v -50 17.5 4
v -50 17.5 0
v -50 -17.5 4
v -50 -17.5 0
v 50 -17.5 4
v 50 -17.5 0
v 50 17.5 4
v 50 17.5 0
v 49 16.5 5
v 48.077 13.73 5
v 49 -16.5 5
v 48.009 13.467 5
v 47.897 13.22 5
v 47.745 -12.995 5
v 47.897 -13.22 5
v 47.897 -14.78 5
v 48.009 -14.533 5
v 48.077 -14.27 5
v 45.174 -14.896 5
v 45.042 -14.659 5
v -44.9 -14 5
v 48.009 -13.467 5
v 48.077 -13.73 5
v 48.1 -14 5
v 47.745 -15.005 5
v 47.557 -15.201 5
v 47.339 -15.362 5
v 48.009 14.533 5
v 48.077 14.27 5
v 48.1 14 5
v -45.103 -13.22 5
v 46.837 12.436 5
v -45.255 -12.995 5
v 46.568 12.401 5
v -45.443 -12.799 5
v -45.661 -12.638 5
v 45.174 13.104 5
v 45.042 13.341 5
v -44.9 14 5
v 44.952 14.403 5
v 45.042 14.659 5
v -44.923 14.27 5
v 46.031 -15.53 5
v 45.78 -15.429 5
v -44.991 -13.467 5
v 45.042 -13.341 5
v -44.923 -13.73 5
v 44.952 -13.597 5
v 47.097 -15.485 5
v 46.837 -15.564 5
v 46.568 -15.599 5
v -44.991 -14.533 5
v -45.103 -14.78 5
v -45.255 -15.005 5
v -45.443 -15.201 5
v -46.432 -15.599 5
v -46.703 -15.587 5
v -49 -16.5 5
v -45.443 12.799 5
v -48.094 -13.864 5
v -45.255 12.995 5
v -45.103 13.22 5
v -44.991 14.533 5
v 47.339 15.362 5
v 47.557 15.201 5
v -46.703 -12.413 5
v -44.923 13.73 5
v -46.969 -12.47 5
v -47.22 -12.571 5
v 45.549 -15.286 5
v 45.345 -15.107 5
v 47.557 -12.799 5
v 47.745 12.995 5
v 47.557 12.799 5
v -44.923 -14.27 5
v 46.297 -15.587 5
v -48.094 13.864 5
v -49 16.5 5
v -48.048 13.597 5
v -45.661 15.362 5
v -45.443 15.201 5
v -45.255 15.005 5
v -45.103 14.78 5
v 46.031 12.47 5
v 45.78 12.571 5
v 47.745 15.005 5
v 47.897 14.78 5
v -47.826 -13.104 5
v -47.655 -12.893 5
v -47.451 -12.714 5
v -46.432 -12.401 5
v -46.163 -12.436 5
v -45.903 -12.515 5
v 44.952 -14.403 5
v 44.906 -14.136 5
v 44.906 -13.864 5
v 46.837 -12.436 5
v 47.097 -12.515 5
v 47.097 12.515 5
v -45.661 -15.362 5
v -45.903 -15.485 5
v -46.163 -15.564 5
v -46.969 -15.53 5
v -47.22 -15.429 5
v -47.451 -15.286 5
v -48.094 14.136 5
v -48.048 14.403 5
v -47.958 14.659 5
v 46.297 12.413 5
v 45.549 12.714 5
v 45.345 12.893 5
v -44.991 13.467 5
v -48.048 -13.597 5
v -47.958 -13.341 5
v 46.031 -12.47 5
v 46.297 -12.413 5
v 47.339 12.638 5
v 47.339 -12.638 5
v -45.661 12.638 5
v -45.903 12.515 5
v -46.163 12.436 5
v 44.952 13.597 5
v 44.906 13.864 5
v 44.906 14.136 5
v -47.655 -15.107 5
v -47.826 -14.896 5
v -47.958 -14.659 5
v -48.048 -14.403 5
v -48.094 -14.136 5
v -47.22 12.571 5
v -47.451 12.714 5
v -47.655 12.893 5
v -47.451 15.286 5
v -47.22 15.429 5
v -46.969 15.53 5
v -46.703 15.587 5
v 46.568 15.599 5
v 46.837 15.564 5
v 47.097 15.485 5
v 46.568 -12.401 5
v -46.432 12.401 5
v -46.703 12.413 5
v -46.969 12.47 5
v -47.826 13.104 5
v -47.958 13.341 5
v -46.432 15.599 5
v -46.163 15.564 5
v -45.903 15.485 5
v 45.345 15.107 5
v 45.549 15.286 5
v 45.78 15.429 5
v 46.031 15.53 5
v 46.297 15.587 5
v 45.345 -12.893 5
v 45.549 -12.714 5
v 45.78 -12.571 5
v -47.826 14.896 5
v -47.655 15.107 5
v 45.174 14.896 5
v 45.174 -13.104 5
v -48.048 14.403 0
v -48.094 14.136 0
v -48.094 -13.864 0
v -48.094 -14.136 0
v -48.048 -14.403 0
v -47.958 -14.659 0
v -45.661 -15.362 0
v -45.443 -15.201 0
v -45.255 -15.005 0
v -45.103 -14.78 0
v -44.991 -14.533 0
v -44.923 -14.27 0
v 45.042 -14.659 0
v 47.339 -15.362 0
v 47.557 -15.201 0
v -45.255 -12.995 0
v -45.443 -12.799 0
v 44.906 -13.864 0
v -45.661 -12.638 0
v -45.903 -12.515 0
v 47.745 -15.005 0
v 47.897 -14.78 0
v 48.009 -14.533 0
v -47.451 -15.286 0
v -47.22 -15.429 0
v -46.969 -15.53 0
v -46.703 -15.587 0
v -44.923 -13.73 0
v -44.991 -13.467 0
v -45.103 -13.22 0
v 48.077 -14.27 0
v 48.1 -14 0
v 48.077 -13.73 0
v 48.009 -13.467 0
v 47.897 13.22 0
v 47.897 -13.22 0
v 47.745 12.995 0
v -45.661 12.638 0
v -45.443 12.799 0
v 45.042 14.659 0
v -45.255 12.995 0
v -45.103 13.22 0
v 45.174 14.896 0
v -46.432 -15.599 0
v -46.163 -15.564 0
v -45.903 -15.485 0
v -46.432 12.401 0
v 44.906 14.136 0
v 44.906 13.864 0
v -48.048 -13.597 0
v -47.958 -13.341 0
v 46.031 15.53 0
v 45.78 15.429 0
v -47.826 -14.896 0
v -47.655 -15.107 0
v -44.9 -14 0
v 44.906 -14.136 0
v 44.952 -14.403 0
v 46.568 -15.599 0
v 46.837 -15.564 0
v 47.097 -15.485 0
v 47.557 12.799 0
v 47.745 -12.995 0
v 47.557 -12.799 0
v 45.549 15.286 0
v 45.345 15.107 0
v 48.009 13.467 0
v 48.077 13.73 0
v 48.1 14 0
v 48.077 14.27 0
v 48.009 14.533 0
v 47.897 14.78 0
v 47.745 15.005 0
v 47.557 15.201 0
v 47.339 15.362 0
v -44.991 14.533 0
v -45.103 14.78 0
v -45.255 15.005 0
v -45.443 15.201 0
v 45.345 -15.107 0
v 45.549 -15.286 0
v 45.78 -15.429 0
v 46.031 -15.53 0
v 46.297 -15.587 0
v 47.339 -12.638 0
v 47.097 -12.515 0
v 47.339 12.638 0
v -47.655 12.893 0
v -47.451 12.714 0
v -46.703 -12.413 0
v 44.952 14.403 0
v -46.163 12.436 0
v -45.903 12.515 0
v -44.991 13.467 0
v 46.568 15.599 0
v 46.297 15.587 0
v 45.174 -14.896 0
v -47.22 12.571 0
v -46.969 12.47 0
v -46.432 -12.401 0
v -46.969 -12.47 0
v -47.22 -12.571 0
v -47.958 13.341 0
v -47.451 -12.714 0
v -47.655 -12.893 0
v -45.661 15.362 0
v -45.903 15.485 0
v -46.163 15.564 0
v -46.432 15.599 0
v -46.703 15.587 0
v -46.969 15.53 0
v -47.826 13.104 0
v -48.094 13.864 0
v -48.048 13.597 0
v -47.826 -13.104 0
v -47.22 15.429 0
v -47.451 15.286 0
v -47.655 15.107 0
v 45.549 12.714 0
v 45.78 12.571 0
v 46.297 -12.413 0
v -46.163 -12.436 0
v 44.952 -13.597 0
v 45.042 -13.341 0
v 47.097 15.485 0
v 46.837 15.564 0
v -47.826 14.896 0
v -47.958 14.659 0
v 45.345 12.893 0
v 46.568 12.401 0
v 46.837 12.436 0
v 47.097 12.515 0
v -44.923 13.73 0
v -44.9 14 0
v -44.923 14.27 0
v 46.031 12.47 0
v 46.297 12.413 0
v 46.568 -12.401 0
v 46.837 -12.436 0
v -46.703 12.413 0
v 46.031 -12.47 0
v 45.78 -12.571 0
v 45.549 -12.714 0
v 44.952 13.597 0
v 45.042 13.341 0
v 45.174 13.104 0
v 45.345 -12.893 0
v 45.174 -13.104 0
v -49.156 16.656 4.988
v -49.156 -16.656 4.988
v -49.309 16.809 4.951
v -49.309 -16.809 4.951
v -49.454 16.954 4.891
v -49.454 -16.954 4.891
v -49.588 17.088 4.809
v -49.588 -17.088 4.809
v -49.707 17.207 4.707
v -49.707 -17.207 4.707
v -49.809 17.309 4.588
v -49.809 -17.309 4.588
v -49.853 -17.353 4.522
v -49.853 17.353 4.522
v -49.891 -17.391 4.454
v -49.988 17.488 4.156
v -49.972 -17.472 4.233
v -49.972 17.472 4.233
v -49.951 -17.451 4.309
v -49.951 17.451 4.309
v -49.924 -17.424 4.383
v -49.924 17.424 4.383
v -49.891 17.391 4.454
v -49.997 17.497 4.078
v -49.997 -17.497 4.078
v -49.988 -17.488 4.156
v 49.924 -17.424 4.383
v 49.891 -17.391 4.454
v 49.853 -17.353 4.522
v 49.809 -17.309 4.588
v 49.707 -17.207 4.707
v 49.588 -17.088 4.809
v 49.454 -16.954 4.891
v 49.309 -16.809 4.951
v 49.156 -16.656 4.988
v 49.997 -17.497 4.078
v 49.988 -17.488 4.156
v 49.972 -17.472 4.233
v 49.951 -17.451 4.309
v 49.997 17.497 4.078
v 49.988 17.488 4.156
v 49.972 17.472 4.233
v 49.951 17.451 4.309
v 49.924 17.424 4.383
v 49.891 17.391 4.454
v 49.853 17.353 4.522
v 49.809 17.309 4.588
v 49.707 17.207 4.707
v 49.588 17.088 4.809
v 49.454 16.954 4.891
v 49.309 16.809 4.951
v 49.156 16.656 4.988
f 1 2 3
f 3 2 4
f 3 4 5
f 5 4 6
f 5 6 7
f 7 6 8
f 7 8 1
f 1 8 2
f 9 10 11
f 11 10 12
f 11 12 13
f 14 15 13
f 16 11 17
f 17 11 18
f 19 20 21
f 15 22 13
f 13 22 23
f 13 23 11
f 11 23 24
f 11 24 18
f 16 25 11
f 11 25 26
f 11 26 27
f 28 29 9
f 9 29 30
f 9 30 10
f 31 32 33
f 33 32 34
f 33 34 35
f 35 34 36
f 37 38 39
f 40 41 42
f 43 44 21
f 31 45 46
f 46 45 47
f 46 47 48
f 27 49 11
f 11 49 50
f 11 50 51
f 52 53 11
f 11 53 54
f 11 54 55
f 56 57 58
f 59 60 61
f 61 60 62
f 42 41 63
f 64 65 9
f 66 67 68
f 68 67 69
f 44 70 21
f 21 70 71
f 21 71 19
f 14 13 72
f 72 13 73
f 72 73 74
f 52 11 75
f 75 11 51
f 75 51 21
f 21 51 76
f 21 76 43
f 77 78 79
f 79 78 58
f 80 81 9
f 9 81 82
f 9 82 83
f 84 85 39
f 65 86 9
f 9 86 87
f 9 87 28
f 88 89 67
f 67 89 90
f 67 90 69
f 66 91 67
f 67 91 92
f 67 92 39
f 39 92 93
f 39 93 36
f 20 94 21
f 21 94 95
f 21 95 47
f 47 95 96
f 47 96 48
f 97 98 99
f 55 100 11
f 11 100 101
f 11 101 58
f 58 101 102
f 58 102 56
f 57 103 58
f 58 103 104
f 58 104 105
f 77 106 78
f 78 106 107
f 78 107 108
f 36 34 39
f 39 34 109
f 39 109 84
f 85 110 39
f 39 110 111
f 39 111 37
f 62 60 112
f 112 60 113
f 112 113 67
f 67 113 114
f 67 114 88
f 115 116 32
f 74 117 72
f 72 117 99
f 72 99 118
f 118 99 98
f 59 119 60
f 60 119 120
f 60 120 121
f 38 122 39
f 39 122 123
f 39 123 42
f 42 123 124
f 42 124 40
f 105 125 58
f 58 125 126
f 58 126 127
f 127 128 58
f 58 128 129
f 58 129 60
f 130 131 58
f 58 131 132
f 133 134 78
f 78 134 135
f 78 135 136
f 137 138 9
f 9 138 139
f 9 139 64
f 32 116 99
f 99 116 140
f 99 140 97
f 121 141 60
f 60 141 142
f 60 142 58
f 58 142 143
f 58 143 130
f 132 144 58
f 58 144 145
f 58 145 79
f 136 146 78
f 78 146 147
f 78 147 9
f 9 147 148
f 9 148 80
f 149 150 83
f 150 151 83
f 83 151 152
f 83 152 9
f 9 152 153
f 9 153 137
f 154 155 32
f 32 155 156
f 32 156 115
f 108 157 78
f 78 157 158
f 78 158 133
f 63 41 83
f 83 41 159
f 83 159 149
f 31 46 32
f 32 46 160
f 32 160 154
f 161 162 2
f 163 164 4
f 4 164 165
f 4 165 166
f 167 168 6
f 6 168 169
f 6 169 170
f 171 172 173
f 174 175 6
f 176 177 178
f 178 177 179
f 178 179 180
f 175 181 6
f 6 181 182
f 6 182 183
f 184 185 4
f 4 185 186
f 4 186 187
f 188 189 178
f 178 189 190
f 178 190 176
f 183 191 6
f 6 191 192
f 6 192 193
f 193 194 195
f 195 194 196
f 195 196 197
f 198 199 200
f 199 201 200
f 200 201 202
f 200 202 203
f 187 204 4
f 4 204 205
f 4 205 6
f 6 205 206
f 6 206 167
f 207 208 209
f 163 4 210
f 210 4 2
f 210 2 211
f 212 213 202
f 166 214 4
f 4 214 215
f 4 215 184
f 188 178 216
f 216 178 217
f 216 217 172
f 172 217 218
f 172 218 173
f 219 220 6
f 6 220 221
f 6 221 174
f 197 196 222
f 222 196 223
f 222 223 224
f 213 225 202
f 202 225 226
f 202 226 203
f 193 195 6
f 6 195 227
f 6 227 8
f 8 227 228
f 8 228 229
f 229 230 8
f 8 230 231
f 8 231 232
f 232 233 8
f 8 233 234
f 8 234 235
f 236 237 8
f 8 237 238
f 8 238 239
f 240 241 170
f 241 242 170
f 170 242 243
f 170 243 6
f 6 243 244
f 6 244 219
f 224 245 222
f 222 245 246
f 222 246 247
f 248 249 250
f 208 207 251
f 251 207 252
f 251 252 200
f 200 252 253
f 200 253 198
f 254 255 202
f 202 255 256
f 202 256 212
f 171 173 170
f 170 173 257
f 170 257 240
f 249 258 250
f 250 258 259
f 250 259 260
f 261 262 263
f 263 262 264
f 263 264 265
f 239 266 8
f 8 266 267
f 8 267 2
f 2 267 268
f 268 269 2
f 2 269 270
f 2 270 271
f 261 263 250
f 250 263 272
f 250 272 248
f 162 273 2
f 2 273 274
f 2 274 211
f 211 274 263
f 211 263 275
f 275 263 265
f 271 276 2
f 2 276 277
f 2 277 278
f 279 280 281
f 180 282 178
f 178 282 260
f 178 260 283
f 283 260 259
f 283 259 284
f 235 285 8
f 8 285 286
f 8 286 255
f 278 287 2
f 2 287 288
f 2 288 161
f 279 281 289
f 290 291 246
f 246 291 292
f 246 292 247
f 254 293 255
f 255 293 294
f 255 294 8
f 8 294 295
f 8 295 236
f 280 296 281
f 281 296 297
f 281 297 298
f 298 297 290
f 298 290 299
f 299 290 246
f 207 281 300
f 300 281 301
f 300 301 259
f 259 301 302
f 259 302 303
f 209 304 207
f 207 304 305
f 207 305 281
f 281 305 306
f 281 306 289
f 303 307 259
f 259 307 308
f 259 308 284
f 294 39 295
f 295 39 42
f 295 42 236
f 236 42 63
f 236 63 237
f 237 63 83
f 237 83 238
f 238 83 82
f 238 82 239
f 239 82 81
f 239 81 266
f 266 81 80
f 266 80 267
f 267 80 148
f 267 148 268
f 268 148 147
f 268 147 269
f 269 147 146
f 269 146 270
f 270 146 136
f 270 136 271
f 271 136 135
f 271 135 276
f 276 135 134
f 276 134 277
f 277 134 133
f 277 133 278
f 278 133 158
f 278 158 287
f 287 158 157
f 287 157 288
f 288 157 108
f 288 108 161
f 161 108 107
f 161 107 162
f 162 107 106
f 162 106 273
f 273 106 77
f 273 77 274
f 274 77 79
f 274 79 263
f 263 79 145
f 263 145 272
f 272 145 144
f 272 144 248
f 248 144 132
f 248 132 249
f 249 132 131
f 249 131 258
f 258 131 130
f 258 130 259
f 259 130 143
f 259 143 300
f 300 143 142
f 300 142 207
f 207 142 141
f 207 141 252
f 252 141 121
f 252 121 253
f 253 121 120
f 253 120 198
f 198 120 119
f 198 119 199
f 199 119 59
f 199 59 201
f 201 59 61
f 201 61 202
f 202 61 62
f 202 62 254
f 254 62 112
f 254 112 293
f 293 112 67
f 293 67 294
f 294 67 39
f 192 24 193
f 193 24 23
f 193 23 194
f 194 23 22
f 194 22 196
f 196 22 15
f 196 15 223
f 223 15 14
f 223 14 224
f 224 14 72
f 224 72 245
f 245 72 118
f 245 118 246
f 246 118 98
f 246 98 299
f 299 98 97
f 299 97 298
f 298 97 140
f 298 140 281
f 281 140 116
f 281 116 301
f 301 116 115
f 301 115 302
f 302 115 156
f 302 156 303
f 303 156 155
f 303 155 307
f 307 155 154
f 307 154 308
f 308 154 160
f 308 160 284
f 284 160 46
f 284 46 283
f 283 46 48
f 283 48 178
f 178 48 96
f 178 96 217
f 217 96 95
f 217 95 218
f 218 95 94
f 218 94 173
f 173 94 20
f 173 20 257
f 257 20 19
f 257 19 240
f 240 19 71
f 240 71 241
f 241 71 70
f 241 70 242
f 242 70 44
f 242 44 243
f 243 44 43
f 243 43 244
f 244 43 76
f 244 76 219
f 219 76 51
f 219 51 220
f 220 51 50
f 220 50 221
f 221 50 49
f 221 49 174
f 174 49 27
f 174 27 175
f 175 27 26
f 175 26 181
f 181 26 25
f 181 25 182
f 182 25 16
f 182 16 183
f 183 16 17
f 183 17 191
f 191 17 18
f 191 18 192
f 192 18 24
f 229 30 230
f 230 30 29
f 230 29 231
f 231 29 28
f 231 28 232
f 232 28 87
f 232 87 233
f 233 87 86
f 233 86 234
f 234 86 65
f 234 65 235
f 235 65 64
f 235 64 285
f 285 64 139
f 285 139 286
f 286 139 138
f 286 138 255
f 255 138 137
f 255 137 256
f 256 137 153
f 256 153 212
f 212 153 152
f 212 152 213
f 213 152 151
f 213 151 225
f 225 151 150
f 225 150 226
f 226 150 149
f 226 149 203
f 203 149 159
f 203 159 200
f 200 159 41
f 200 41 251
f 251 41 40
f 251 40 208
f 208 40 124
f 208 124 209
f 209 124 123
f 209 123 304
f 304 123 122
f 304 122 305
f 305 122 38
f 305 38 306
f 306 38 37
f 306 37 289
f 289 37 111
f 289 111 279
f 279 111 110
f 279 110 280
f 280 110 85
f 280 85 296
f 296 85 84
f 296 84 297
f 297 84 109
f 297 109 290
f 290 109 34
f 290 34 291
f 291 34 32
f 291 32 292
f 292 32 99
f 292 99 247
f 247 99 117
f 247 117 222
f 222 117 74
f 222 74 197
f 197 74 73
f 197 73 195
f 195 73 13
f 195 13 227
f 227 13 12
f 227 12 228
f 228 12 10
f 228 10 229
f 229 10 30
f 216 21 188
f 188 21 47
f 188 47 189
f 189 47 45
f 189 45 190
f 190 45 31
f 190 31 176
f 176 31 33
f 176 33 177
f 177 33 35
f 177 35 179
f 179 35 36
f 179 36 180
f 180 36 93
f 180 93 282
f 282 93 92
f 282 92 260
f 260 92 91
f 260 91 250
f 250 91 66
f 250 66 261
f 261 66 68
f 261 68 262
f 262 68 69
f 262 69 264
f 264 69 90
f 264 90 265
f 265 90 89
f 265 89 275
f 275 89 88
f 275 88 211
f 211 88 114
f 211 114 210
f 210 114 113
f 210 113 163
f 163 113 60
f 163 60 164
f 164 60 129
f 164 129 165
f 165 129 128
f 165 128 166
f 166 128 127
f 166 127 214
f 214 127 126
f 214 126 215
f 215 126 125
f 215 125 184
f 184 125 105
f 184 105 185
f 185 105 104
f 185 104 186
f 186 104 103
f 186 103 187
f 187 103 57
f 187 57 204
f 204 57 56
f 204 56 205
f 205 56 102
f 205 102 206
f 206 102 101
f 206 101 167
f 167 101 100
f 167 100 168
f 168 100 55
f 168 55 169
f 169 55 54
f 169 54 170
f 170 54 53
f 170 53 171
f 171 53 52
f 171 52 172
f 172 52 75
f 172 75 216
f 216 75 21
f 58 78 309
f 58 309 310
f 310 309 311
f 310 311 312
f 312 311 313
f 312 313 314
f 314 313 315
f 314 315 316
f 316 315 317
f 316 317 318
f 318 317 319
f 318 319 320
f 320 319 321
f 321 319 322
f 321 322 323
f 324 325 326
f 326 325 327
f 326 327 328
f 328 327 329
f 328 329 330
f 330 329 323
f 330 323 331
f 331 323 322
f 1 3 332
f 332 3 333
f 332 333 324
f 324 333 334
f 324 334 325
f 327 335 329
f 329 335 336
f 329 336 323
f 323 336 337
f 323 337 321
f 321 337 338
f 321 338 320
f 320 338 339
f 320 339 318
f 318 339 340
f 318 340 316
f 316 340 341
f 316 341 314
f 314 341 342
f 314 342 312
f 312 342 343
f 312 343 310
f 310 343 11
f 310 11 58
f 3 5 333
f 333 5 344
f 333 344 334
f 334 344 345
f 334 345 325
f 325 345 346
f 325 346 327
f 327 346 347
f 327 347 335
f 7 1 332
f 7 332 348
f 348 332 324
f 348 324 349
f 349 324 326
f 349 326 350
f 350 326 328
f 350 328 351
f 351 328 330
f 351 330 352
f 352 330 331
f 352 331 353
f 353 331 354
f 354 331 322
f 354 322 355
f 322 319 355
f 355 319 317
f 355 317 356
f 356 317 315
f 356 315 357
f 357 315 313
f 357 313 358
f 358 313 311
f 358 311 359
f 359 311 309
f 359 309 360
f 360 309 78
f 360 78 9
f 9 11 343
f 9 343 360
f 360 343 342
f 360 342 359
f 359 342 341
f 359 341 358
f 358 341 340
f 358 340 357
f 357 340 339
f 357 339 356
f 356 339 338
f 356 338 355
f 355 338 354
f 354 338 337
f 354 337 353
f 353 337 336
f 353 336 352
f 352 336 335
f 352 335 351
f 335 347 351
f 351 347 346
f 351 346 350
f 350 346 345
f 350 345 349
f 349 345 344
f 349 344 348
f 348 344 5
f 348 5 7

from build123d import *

# Parameters (mm, degrees)
SKETCH1_W           = 100
SKETCH1_H           = 35
BOSS_EXTRUDE1_DEPTH = 5
SKETCH2_R           = 1.6
CUT_EXTRUDE1_DEPTH  = 5
FILLET1_R           = 1


with BuildPart() as part:
    # Sketch1 → Boss-Extrude1 (new body)
    with BuildSketch(Plane.XY):
        Rectangle(SKETCH1_W, SKETCH1_H)
    extrude(amount=BOSS_EXTRUDE1_DEPTH)

    # Sketch2 → Cut-Extrude1 (cut)
    with BuildSketch(Plane.XY.offset(5)):
        with Locations((-46.5, 14)):
            Circle(SKETCH2_R)
        with Locations((-46.5, -14)):
            Circle(SKETCH2_R)
        with Locations((46.5, 14)):
            Circle(SKETCH2_R)
        with Locations((46.5, -14)):
            Circle(SKETCH2_R)
    extrude(amount=-CUT_EXTRUDE1_DEPTH, mode=Mode.SUBTRACT)

    # Fillet1
    fillet1_edges = [part.edges().sort_by_distance(p)[0] for p in [
        (50, 0, 5),
        (0, 17.5, 5),
        (-50, 0, 5),
        (0, -17.5, 5),
    ]]
    fillet(fillet1_edges, radius=FILLET1_R)


solid = part.part
